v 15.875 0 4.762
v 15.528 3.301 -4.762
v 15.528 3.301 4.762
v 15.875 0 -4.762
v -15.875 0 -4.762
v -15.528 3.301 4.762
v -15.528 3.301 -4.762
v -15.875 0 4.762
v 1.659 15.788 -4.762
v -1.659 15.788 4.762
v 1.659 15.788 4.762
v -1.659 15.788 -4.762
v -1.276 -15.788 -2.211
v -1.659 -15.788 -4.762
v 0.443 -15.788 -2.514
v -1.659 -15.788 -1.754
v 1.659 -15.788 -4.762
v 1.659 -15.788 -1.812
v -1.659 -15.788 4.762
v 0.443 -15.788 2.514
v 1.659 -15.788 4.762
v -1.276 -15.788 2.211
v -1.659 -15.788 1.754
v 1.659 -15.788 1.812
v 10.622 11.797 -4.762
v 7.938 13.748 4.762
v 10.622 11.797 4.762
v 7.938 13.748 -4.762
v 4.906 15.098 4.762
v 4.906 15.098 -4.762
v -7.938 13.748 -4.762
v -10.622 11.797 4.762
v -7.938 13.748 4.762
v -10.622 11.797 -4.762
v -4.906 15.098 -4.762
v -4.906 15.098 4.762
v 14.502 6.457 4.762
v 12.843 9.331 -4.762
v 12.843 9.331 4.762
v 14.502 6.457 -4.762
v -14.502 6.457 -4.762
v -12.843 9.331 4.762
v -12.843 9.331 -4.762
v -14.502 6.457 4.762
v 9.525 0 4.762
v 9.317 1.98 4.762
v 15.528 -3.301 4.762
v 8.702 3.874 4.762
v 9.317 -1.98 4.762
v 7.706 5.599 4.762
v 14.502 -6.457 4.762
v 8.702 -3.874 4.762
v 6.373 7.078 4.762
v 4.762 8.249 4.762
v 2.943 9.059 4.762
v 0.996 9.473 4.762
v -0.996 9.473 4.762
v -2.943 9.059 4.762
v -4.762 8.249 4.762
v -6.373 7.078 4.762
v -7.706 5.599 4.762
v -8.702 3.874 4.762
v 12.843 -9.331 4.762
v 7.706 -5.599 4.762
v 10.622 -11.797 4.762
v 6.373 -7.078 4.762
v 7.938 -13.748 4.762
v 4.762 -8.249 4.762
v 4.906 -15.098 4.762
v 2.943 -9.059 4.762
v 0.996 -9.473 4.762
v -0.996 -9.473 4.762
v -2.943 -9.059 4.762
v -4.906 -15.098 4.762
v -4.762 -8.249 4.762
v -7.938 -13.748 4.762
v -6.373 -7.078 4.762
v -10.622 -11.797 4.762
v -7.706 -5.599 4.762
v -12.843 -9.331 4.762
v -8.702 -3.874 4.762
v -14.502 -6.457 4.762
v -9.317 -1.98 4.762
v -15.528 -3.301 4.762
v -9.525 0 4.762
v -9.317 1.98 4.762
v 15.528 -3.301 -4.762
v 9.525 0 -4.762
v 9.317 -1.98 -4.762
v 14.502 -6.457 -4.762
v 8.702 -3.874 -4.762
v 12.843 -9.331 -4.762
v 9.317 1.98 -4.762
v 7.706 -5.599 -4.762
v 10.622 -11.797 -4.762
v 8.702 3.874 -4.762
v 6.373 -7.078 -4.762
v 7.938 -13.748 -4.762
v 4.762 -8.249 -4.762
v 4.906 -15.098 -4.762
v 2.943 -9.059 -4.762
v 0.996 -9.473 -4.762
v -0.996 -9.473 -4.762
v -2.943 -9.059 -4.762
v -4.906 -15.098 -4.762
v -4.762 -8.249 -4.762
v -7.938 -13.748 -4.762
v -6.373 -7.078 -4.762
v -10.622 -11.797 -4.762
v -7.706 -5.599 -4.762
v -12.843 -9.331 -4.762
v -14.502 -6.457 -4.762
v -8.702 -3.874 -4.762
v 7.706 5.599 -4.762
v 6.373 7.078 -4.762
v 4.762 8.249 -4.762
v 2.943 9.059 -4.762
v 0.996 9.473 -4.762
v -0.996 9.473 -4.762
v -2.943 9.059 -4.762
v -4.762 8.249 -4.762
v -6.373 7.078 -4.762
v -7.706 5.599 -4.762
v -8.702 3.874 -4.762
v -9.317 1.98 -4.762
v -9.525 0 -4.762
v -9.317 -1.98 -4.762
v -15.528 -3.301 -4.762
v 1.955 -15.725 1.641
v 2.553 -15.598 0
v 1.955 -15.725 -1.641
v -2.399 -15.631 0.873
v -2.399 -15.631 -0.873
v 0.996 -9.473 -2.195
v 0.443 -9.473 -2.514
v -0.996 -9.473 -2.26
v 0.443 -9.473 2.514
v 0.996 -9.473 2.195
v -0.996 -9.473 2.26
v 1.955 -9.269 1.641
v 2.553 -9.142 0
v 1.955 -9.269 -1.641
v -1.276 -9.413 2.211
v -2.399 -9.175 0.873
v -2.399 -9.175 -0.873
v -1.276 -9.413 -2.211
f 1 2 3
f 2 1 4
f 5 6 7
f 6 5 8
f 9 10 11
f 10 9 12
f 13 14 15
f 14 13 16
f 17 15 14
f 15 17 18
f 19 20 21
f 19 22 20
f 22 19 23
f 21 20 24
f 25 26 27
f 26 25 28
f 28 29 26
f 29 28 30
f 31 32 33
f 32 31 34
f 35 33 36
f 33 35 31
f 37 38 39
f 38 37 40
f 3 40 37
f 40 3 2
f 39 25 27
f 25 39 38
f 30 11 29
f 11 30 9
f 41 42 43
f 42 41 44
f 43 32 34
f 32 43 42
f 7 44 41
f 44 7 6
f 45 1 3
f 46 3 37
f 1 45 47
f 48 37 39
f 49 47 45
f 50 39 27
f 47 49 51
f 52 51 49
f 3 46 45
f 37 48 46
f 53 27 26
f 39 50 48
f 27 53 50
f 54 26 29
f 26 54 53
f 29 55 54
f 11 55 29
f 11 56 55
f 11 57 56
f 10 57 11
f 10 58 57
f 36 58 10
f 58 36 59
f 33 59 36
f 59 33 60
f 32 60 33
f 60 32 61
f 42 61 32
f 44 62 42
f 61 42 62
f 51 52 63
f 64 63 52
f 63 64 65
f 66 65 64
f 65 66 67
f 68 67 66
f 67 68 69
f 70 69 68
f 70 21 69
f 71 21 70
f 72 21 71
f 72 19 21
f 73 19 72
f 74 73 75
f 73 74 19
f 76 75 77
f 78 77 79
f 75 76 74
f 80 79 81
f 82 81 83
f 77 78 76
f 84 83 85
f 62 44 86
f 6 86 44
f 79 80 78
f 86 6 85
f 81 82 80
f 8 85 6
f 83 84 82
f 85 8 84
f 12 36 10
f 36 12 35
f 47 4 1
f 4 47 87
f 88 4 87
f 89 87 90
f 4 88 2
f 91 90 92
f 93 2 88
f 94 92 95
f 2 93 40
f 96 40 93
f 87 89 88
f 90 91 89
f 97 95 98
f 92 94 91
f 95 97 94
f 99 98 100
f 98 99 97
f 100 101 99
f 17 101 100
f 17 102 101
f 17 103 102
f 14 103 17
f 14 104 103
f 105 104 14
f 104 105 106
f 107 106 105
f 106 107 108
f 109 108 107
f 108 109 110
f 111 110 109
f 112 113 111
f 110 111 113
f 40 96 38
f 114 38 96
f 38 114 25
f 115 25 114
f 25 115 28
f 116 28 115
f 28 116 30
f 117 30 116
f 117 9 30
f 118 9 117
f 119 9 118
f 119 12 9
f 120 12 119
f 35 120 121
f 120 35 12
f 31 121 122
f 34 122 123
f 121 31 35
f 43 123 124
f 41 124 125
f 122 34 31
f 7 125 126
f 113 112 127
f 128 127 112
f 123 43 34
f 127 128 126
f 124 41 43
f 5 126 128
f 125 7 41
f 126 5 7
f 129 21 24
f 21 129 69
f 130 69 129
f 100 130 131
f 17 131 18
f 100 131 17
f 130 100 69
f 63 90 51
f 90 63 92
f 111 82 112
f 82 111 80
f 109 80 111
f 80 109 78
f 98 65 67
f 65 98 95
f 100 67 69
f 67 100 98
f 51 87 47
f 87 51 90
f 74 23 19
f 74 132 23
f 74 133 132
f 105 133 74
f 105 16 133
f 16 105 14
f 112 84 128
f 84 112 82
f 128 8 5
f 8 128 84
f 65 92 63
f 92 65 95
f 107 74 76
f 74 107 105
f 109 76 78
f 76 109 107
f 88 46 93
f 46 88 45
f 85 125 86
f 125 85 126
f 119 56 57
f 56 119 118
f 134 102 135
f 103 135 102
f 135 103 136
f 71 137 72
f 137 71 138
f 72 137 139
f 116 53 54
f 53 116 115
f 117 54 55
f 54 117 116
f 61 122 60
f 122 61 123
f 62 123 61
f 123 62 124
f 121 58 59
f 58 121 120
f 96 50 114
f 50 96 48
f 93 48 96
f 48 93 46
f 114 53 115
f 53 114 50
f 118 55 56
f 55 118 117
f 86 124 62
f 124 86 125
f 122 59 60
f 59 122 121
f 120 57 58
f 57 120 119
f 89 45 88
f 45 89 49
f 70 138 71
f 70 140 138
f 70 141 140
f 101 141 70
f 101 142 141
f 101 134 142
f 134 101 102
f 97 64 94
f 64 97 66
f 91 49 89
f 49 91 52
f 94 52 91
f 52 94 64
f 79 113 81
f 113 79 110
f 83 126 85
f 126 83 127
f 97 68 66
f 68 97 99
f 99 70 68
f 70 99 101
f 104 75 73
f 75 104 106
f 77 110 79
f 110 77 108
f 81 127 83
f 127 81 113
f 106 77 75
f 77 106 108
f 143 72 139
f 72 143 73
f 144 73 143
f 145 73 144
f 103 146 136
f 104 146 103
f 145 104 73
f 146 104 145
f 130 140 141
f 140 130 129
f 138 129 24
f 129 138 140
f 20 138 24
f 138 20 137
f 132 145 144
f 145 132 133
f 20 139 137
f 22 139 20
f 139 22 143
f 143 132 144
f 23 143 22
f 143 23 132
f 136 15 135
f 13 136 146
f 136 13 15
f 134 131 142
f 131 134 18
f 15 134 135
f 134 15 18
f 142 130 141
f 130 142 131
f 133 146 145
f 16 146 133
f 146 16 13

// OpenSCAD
inch=25.4;

module set_collar(od=(1+1/4)*inch,
		  id=3/4*inch,
		  thickness=3/8*inch,
		  threadD=0.201*inch) {

     difference() {
	  cylinder(d=od, h=thickness, center=true);
	  cylinder(d=id, h=thickness*2, center=true);
	  rotate([90,0,0])
	  cylinder(d=threadD, h=od, center=false);
	  
     }
}

set_collar();
